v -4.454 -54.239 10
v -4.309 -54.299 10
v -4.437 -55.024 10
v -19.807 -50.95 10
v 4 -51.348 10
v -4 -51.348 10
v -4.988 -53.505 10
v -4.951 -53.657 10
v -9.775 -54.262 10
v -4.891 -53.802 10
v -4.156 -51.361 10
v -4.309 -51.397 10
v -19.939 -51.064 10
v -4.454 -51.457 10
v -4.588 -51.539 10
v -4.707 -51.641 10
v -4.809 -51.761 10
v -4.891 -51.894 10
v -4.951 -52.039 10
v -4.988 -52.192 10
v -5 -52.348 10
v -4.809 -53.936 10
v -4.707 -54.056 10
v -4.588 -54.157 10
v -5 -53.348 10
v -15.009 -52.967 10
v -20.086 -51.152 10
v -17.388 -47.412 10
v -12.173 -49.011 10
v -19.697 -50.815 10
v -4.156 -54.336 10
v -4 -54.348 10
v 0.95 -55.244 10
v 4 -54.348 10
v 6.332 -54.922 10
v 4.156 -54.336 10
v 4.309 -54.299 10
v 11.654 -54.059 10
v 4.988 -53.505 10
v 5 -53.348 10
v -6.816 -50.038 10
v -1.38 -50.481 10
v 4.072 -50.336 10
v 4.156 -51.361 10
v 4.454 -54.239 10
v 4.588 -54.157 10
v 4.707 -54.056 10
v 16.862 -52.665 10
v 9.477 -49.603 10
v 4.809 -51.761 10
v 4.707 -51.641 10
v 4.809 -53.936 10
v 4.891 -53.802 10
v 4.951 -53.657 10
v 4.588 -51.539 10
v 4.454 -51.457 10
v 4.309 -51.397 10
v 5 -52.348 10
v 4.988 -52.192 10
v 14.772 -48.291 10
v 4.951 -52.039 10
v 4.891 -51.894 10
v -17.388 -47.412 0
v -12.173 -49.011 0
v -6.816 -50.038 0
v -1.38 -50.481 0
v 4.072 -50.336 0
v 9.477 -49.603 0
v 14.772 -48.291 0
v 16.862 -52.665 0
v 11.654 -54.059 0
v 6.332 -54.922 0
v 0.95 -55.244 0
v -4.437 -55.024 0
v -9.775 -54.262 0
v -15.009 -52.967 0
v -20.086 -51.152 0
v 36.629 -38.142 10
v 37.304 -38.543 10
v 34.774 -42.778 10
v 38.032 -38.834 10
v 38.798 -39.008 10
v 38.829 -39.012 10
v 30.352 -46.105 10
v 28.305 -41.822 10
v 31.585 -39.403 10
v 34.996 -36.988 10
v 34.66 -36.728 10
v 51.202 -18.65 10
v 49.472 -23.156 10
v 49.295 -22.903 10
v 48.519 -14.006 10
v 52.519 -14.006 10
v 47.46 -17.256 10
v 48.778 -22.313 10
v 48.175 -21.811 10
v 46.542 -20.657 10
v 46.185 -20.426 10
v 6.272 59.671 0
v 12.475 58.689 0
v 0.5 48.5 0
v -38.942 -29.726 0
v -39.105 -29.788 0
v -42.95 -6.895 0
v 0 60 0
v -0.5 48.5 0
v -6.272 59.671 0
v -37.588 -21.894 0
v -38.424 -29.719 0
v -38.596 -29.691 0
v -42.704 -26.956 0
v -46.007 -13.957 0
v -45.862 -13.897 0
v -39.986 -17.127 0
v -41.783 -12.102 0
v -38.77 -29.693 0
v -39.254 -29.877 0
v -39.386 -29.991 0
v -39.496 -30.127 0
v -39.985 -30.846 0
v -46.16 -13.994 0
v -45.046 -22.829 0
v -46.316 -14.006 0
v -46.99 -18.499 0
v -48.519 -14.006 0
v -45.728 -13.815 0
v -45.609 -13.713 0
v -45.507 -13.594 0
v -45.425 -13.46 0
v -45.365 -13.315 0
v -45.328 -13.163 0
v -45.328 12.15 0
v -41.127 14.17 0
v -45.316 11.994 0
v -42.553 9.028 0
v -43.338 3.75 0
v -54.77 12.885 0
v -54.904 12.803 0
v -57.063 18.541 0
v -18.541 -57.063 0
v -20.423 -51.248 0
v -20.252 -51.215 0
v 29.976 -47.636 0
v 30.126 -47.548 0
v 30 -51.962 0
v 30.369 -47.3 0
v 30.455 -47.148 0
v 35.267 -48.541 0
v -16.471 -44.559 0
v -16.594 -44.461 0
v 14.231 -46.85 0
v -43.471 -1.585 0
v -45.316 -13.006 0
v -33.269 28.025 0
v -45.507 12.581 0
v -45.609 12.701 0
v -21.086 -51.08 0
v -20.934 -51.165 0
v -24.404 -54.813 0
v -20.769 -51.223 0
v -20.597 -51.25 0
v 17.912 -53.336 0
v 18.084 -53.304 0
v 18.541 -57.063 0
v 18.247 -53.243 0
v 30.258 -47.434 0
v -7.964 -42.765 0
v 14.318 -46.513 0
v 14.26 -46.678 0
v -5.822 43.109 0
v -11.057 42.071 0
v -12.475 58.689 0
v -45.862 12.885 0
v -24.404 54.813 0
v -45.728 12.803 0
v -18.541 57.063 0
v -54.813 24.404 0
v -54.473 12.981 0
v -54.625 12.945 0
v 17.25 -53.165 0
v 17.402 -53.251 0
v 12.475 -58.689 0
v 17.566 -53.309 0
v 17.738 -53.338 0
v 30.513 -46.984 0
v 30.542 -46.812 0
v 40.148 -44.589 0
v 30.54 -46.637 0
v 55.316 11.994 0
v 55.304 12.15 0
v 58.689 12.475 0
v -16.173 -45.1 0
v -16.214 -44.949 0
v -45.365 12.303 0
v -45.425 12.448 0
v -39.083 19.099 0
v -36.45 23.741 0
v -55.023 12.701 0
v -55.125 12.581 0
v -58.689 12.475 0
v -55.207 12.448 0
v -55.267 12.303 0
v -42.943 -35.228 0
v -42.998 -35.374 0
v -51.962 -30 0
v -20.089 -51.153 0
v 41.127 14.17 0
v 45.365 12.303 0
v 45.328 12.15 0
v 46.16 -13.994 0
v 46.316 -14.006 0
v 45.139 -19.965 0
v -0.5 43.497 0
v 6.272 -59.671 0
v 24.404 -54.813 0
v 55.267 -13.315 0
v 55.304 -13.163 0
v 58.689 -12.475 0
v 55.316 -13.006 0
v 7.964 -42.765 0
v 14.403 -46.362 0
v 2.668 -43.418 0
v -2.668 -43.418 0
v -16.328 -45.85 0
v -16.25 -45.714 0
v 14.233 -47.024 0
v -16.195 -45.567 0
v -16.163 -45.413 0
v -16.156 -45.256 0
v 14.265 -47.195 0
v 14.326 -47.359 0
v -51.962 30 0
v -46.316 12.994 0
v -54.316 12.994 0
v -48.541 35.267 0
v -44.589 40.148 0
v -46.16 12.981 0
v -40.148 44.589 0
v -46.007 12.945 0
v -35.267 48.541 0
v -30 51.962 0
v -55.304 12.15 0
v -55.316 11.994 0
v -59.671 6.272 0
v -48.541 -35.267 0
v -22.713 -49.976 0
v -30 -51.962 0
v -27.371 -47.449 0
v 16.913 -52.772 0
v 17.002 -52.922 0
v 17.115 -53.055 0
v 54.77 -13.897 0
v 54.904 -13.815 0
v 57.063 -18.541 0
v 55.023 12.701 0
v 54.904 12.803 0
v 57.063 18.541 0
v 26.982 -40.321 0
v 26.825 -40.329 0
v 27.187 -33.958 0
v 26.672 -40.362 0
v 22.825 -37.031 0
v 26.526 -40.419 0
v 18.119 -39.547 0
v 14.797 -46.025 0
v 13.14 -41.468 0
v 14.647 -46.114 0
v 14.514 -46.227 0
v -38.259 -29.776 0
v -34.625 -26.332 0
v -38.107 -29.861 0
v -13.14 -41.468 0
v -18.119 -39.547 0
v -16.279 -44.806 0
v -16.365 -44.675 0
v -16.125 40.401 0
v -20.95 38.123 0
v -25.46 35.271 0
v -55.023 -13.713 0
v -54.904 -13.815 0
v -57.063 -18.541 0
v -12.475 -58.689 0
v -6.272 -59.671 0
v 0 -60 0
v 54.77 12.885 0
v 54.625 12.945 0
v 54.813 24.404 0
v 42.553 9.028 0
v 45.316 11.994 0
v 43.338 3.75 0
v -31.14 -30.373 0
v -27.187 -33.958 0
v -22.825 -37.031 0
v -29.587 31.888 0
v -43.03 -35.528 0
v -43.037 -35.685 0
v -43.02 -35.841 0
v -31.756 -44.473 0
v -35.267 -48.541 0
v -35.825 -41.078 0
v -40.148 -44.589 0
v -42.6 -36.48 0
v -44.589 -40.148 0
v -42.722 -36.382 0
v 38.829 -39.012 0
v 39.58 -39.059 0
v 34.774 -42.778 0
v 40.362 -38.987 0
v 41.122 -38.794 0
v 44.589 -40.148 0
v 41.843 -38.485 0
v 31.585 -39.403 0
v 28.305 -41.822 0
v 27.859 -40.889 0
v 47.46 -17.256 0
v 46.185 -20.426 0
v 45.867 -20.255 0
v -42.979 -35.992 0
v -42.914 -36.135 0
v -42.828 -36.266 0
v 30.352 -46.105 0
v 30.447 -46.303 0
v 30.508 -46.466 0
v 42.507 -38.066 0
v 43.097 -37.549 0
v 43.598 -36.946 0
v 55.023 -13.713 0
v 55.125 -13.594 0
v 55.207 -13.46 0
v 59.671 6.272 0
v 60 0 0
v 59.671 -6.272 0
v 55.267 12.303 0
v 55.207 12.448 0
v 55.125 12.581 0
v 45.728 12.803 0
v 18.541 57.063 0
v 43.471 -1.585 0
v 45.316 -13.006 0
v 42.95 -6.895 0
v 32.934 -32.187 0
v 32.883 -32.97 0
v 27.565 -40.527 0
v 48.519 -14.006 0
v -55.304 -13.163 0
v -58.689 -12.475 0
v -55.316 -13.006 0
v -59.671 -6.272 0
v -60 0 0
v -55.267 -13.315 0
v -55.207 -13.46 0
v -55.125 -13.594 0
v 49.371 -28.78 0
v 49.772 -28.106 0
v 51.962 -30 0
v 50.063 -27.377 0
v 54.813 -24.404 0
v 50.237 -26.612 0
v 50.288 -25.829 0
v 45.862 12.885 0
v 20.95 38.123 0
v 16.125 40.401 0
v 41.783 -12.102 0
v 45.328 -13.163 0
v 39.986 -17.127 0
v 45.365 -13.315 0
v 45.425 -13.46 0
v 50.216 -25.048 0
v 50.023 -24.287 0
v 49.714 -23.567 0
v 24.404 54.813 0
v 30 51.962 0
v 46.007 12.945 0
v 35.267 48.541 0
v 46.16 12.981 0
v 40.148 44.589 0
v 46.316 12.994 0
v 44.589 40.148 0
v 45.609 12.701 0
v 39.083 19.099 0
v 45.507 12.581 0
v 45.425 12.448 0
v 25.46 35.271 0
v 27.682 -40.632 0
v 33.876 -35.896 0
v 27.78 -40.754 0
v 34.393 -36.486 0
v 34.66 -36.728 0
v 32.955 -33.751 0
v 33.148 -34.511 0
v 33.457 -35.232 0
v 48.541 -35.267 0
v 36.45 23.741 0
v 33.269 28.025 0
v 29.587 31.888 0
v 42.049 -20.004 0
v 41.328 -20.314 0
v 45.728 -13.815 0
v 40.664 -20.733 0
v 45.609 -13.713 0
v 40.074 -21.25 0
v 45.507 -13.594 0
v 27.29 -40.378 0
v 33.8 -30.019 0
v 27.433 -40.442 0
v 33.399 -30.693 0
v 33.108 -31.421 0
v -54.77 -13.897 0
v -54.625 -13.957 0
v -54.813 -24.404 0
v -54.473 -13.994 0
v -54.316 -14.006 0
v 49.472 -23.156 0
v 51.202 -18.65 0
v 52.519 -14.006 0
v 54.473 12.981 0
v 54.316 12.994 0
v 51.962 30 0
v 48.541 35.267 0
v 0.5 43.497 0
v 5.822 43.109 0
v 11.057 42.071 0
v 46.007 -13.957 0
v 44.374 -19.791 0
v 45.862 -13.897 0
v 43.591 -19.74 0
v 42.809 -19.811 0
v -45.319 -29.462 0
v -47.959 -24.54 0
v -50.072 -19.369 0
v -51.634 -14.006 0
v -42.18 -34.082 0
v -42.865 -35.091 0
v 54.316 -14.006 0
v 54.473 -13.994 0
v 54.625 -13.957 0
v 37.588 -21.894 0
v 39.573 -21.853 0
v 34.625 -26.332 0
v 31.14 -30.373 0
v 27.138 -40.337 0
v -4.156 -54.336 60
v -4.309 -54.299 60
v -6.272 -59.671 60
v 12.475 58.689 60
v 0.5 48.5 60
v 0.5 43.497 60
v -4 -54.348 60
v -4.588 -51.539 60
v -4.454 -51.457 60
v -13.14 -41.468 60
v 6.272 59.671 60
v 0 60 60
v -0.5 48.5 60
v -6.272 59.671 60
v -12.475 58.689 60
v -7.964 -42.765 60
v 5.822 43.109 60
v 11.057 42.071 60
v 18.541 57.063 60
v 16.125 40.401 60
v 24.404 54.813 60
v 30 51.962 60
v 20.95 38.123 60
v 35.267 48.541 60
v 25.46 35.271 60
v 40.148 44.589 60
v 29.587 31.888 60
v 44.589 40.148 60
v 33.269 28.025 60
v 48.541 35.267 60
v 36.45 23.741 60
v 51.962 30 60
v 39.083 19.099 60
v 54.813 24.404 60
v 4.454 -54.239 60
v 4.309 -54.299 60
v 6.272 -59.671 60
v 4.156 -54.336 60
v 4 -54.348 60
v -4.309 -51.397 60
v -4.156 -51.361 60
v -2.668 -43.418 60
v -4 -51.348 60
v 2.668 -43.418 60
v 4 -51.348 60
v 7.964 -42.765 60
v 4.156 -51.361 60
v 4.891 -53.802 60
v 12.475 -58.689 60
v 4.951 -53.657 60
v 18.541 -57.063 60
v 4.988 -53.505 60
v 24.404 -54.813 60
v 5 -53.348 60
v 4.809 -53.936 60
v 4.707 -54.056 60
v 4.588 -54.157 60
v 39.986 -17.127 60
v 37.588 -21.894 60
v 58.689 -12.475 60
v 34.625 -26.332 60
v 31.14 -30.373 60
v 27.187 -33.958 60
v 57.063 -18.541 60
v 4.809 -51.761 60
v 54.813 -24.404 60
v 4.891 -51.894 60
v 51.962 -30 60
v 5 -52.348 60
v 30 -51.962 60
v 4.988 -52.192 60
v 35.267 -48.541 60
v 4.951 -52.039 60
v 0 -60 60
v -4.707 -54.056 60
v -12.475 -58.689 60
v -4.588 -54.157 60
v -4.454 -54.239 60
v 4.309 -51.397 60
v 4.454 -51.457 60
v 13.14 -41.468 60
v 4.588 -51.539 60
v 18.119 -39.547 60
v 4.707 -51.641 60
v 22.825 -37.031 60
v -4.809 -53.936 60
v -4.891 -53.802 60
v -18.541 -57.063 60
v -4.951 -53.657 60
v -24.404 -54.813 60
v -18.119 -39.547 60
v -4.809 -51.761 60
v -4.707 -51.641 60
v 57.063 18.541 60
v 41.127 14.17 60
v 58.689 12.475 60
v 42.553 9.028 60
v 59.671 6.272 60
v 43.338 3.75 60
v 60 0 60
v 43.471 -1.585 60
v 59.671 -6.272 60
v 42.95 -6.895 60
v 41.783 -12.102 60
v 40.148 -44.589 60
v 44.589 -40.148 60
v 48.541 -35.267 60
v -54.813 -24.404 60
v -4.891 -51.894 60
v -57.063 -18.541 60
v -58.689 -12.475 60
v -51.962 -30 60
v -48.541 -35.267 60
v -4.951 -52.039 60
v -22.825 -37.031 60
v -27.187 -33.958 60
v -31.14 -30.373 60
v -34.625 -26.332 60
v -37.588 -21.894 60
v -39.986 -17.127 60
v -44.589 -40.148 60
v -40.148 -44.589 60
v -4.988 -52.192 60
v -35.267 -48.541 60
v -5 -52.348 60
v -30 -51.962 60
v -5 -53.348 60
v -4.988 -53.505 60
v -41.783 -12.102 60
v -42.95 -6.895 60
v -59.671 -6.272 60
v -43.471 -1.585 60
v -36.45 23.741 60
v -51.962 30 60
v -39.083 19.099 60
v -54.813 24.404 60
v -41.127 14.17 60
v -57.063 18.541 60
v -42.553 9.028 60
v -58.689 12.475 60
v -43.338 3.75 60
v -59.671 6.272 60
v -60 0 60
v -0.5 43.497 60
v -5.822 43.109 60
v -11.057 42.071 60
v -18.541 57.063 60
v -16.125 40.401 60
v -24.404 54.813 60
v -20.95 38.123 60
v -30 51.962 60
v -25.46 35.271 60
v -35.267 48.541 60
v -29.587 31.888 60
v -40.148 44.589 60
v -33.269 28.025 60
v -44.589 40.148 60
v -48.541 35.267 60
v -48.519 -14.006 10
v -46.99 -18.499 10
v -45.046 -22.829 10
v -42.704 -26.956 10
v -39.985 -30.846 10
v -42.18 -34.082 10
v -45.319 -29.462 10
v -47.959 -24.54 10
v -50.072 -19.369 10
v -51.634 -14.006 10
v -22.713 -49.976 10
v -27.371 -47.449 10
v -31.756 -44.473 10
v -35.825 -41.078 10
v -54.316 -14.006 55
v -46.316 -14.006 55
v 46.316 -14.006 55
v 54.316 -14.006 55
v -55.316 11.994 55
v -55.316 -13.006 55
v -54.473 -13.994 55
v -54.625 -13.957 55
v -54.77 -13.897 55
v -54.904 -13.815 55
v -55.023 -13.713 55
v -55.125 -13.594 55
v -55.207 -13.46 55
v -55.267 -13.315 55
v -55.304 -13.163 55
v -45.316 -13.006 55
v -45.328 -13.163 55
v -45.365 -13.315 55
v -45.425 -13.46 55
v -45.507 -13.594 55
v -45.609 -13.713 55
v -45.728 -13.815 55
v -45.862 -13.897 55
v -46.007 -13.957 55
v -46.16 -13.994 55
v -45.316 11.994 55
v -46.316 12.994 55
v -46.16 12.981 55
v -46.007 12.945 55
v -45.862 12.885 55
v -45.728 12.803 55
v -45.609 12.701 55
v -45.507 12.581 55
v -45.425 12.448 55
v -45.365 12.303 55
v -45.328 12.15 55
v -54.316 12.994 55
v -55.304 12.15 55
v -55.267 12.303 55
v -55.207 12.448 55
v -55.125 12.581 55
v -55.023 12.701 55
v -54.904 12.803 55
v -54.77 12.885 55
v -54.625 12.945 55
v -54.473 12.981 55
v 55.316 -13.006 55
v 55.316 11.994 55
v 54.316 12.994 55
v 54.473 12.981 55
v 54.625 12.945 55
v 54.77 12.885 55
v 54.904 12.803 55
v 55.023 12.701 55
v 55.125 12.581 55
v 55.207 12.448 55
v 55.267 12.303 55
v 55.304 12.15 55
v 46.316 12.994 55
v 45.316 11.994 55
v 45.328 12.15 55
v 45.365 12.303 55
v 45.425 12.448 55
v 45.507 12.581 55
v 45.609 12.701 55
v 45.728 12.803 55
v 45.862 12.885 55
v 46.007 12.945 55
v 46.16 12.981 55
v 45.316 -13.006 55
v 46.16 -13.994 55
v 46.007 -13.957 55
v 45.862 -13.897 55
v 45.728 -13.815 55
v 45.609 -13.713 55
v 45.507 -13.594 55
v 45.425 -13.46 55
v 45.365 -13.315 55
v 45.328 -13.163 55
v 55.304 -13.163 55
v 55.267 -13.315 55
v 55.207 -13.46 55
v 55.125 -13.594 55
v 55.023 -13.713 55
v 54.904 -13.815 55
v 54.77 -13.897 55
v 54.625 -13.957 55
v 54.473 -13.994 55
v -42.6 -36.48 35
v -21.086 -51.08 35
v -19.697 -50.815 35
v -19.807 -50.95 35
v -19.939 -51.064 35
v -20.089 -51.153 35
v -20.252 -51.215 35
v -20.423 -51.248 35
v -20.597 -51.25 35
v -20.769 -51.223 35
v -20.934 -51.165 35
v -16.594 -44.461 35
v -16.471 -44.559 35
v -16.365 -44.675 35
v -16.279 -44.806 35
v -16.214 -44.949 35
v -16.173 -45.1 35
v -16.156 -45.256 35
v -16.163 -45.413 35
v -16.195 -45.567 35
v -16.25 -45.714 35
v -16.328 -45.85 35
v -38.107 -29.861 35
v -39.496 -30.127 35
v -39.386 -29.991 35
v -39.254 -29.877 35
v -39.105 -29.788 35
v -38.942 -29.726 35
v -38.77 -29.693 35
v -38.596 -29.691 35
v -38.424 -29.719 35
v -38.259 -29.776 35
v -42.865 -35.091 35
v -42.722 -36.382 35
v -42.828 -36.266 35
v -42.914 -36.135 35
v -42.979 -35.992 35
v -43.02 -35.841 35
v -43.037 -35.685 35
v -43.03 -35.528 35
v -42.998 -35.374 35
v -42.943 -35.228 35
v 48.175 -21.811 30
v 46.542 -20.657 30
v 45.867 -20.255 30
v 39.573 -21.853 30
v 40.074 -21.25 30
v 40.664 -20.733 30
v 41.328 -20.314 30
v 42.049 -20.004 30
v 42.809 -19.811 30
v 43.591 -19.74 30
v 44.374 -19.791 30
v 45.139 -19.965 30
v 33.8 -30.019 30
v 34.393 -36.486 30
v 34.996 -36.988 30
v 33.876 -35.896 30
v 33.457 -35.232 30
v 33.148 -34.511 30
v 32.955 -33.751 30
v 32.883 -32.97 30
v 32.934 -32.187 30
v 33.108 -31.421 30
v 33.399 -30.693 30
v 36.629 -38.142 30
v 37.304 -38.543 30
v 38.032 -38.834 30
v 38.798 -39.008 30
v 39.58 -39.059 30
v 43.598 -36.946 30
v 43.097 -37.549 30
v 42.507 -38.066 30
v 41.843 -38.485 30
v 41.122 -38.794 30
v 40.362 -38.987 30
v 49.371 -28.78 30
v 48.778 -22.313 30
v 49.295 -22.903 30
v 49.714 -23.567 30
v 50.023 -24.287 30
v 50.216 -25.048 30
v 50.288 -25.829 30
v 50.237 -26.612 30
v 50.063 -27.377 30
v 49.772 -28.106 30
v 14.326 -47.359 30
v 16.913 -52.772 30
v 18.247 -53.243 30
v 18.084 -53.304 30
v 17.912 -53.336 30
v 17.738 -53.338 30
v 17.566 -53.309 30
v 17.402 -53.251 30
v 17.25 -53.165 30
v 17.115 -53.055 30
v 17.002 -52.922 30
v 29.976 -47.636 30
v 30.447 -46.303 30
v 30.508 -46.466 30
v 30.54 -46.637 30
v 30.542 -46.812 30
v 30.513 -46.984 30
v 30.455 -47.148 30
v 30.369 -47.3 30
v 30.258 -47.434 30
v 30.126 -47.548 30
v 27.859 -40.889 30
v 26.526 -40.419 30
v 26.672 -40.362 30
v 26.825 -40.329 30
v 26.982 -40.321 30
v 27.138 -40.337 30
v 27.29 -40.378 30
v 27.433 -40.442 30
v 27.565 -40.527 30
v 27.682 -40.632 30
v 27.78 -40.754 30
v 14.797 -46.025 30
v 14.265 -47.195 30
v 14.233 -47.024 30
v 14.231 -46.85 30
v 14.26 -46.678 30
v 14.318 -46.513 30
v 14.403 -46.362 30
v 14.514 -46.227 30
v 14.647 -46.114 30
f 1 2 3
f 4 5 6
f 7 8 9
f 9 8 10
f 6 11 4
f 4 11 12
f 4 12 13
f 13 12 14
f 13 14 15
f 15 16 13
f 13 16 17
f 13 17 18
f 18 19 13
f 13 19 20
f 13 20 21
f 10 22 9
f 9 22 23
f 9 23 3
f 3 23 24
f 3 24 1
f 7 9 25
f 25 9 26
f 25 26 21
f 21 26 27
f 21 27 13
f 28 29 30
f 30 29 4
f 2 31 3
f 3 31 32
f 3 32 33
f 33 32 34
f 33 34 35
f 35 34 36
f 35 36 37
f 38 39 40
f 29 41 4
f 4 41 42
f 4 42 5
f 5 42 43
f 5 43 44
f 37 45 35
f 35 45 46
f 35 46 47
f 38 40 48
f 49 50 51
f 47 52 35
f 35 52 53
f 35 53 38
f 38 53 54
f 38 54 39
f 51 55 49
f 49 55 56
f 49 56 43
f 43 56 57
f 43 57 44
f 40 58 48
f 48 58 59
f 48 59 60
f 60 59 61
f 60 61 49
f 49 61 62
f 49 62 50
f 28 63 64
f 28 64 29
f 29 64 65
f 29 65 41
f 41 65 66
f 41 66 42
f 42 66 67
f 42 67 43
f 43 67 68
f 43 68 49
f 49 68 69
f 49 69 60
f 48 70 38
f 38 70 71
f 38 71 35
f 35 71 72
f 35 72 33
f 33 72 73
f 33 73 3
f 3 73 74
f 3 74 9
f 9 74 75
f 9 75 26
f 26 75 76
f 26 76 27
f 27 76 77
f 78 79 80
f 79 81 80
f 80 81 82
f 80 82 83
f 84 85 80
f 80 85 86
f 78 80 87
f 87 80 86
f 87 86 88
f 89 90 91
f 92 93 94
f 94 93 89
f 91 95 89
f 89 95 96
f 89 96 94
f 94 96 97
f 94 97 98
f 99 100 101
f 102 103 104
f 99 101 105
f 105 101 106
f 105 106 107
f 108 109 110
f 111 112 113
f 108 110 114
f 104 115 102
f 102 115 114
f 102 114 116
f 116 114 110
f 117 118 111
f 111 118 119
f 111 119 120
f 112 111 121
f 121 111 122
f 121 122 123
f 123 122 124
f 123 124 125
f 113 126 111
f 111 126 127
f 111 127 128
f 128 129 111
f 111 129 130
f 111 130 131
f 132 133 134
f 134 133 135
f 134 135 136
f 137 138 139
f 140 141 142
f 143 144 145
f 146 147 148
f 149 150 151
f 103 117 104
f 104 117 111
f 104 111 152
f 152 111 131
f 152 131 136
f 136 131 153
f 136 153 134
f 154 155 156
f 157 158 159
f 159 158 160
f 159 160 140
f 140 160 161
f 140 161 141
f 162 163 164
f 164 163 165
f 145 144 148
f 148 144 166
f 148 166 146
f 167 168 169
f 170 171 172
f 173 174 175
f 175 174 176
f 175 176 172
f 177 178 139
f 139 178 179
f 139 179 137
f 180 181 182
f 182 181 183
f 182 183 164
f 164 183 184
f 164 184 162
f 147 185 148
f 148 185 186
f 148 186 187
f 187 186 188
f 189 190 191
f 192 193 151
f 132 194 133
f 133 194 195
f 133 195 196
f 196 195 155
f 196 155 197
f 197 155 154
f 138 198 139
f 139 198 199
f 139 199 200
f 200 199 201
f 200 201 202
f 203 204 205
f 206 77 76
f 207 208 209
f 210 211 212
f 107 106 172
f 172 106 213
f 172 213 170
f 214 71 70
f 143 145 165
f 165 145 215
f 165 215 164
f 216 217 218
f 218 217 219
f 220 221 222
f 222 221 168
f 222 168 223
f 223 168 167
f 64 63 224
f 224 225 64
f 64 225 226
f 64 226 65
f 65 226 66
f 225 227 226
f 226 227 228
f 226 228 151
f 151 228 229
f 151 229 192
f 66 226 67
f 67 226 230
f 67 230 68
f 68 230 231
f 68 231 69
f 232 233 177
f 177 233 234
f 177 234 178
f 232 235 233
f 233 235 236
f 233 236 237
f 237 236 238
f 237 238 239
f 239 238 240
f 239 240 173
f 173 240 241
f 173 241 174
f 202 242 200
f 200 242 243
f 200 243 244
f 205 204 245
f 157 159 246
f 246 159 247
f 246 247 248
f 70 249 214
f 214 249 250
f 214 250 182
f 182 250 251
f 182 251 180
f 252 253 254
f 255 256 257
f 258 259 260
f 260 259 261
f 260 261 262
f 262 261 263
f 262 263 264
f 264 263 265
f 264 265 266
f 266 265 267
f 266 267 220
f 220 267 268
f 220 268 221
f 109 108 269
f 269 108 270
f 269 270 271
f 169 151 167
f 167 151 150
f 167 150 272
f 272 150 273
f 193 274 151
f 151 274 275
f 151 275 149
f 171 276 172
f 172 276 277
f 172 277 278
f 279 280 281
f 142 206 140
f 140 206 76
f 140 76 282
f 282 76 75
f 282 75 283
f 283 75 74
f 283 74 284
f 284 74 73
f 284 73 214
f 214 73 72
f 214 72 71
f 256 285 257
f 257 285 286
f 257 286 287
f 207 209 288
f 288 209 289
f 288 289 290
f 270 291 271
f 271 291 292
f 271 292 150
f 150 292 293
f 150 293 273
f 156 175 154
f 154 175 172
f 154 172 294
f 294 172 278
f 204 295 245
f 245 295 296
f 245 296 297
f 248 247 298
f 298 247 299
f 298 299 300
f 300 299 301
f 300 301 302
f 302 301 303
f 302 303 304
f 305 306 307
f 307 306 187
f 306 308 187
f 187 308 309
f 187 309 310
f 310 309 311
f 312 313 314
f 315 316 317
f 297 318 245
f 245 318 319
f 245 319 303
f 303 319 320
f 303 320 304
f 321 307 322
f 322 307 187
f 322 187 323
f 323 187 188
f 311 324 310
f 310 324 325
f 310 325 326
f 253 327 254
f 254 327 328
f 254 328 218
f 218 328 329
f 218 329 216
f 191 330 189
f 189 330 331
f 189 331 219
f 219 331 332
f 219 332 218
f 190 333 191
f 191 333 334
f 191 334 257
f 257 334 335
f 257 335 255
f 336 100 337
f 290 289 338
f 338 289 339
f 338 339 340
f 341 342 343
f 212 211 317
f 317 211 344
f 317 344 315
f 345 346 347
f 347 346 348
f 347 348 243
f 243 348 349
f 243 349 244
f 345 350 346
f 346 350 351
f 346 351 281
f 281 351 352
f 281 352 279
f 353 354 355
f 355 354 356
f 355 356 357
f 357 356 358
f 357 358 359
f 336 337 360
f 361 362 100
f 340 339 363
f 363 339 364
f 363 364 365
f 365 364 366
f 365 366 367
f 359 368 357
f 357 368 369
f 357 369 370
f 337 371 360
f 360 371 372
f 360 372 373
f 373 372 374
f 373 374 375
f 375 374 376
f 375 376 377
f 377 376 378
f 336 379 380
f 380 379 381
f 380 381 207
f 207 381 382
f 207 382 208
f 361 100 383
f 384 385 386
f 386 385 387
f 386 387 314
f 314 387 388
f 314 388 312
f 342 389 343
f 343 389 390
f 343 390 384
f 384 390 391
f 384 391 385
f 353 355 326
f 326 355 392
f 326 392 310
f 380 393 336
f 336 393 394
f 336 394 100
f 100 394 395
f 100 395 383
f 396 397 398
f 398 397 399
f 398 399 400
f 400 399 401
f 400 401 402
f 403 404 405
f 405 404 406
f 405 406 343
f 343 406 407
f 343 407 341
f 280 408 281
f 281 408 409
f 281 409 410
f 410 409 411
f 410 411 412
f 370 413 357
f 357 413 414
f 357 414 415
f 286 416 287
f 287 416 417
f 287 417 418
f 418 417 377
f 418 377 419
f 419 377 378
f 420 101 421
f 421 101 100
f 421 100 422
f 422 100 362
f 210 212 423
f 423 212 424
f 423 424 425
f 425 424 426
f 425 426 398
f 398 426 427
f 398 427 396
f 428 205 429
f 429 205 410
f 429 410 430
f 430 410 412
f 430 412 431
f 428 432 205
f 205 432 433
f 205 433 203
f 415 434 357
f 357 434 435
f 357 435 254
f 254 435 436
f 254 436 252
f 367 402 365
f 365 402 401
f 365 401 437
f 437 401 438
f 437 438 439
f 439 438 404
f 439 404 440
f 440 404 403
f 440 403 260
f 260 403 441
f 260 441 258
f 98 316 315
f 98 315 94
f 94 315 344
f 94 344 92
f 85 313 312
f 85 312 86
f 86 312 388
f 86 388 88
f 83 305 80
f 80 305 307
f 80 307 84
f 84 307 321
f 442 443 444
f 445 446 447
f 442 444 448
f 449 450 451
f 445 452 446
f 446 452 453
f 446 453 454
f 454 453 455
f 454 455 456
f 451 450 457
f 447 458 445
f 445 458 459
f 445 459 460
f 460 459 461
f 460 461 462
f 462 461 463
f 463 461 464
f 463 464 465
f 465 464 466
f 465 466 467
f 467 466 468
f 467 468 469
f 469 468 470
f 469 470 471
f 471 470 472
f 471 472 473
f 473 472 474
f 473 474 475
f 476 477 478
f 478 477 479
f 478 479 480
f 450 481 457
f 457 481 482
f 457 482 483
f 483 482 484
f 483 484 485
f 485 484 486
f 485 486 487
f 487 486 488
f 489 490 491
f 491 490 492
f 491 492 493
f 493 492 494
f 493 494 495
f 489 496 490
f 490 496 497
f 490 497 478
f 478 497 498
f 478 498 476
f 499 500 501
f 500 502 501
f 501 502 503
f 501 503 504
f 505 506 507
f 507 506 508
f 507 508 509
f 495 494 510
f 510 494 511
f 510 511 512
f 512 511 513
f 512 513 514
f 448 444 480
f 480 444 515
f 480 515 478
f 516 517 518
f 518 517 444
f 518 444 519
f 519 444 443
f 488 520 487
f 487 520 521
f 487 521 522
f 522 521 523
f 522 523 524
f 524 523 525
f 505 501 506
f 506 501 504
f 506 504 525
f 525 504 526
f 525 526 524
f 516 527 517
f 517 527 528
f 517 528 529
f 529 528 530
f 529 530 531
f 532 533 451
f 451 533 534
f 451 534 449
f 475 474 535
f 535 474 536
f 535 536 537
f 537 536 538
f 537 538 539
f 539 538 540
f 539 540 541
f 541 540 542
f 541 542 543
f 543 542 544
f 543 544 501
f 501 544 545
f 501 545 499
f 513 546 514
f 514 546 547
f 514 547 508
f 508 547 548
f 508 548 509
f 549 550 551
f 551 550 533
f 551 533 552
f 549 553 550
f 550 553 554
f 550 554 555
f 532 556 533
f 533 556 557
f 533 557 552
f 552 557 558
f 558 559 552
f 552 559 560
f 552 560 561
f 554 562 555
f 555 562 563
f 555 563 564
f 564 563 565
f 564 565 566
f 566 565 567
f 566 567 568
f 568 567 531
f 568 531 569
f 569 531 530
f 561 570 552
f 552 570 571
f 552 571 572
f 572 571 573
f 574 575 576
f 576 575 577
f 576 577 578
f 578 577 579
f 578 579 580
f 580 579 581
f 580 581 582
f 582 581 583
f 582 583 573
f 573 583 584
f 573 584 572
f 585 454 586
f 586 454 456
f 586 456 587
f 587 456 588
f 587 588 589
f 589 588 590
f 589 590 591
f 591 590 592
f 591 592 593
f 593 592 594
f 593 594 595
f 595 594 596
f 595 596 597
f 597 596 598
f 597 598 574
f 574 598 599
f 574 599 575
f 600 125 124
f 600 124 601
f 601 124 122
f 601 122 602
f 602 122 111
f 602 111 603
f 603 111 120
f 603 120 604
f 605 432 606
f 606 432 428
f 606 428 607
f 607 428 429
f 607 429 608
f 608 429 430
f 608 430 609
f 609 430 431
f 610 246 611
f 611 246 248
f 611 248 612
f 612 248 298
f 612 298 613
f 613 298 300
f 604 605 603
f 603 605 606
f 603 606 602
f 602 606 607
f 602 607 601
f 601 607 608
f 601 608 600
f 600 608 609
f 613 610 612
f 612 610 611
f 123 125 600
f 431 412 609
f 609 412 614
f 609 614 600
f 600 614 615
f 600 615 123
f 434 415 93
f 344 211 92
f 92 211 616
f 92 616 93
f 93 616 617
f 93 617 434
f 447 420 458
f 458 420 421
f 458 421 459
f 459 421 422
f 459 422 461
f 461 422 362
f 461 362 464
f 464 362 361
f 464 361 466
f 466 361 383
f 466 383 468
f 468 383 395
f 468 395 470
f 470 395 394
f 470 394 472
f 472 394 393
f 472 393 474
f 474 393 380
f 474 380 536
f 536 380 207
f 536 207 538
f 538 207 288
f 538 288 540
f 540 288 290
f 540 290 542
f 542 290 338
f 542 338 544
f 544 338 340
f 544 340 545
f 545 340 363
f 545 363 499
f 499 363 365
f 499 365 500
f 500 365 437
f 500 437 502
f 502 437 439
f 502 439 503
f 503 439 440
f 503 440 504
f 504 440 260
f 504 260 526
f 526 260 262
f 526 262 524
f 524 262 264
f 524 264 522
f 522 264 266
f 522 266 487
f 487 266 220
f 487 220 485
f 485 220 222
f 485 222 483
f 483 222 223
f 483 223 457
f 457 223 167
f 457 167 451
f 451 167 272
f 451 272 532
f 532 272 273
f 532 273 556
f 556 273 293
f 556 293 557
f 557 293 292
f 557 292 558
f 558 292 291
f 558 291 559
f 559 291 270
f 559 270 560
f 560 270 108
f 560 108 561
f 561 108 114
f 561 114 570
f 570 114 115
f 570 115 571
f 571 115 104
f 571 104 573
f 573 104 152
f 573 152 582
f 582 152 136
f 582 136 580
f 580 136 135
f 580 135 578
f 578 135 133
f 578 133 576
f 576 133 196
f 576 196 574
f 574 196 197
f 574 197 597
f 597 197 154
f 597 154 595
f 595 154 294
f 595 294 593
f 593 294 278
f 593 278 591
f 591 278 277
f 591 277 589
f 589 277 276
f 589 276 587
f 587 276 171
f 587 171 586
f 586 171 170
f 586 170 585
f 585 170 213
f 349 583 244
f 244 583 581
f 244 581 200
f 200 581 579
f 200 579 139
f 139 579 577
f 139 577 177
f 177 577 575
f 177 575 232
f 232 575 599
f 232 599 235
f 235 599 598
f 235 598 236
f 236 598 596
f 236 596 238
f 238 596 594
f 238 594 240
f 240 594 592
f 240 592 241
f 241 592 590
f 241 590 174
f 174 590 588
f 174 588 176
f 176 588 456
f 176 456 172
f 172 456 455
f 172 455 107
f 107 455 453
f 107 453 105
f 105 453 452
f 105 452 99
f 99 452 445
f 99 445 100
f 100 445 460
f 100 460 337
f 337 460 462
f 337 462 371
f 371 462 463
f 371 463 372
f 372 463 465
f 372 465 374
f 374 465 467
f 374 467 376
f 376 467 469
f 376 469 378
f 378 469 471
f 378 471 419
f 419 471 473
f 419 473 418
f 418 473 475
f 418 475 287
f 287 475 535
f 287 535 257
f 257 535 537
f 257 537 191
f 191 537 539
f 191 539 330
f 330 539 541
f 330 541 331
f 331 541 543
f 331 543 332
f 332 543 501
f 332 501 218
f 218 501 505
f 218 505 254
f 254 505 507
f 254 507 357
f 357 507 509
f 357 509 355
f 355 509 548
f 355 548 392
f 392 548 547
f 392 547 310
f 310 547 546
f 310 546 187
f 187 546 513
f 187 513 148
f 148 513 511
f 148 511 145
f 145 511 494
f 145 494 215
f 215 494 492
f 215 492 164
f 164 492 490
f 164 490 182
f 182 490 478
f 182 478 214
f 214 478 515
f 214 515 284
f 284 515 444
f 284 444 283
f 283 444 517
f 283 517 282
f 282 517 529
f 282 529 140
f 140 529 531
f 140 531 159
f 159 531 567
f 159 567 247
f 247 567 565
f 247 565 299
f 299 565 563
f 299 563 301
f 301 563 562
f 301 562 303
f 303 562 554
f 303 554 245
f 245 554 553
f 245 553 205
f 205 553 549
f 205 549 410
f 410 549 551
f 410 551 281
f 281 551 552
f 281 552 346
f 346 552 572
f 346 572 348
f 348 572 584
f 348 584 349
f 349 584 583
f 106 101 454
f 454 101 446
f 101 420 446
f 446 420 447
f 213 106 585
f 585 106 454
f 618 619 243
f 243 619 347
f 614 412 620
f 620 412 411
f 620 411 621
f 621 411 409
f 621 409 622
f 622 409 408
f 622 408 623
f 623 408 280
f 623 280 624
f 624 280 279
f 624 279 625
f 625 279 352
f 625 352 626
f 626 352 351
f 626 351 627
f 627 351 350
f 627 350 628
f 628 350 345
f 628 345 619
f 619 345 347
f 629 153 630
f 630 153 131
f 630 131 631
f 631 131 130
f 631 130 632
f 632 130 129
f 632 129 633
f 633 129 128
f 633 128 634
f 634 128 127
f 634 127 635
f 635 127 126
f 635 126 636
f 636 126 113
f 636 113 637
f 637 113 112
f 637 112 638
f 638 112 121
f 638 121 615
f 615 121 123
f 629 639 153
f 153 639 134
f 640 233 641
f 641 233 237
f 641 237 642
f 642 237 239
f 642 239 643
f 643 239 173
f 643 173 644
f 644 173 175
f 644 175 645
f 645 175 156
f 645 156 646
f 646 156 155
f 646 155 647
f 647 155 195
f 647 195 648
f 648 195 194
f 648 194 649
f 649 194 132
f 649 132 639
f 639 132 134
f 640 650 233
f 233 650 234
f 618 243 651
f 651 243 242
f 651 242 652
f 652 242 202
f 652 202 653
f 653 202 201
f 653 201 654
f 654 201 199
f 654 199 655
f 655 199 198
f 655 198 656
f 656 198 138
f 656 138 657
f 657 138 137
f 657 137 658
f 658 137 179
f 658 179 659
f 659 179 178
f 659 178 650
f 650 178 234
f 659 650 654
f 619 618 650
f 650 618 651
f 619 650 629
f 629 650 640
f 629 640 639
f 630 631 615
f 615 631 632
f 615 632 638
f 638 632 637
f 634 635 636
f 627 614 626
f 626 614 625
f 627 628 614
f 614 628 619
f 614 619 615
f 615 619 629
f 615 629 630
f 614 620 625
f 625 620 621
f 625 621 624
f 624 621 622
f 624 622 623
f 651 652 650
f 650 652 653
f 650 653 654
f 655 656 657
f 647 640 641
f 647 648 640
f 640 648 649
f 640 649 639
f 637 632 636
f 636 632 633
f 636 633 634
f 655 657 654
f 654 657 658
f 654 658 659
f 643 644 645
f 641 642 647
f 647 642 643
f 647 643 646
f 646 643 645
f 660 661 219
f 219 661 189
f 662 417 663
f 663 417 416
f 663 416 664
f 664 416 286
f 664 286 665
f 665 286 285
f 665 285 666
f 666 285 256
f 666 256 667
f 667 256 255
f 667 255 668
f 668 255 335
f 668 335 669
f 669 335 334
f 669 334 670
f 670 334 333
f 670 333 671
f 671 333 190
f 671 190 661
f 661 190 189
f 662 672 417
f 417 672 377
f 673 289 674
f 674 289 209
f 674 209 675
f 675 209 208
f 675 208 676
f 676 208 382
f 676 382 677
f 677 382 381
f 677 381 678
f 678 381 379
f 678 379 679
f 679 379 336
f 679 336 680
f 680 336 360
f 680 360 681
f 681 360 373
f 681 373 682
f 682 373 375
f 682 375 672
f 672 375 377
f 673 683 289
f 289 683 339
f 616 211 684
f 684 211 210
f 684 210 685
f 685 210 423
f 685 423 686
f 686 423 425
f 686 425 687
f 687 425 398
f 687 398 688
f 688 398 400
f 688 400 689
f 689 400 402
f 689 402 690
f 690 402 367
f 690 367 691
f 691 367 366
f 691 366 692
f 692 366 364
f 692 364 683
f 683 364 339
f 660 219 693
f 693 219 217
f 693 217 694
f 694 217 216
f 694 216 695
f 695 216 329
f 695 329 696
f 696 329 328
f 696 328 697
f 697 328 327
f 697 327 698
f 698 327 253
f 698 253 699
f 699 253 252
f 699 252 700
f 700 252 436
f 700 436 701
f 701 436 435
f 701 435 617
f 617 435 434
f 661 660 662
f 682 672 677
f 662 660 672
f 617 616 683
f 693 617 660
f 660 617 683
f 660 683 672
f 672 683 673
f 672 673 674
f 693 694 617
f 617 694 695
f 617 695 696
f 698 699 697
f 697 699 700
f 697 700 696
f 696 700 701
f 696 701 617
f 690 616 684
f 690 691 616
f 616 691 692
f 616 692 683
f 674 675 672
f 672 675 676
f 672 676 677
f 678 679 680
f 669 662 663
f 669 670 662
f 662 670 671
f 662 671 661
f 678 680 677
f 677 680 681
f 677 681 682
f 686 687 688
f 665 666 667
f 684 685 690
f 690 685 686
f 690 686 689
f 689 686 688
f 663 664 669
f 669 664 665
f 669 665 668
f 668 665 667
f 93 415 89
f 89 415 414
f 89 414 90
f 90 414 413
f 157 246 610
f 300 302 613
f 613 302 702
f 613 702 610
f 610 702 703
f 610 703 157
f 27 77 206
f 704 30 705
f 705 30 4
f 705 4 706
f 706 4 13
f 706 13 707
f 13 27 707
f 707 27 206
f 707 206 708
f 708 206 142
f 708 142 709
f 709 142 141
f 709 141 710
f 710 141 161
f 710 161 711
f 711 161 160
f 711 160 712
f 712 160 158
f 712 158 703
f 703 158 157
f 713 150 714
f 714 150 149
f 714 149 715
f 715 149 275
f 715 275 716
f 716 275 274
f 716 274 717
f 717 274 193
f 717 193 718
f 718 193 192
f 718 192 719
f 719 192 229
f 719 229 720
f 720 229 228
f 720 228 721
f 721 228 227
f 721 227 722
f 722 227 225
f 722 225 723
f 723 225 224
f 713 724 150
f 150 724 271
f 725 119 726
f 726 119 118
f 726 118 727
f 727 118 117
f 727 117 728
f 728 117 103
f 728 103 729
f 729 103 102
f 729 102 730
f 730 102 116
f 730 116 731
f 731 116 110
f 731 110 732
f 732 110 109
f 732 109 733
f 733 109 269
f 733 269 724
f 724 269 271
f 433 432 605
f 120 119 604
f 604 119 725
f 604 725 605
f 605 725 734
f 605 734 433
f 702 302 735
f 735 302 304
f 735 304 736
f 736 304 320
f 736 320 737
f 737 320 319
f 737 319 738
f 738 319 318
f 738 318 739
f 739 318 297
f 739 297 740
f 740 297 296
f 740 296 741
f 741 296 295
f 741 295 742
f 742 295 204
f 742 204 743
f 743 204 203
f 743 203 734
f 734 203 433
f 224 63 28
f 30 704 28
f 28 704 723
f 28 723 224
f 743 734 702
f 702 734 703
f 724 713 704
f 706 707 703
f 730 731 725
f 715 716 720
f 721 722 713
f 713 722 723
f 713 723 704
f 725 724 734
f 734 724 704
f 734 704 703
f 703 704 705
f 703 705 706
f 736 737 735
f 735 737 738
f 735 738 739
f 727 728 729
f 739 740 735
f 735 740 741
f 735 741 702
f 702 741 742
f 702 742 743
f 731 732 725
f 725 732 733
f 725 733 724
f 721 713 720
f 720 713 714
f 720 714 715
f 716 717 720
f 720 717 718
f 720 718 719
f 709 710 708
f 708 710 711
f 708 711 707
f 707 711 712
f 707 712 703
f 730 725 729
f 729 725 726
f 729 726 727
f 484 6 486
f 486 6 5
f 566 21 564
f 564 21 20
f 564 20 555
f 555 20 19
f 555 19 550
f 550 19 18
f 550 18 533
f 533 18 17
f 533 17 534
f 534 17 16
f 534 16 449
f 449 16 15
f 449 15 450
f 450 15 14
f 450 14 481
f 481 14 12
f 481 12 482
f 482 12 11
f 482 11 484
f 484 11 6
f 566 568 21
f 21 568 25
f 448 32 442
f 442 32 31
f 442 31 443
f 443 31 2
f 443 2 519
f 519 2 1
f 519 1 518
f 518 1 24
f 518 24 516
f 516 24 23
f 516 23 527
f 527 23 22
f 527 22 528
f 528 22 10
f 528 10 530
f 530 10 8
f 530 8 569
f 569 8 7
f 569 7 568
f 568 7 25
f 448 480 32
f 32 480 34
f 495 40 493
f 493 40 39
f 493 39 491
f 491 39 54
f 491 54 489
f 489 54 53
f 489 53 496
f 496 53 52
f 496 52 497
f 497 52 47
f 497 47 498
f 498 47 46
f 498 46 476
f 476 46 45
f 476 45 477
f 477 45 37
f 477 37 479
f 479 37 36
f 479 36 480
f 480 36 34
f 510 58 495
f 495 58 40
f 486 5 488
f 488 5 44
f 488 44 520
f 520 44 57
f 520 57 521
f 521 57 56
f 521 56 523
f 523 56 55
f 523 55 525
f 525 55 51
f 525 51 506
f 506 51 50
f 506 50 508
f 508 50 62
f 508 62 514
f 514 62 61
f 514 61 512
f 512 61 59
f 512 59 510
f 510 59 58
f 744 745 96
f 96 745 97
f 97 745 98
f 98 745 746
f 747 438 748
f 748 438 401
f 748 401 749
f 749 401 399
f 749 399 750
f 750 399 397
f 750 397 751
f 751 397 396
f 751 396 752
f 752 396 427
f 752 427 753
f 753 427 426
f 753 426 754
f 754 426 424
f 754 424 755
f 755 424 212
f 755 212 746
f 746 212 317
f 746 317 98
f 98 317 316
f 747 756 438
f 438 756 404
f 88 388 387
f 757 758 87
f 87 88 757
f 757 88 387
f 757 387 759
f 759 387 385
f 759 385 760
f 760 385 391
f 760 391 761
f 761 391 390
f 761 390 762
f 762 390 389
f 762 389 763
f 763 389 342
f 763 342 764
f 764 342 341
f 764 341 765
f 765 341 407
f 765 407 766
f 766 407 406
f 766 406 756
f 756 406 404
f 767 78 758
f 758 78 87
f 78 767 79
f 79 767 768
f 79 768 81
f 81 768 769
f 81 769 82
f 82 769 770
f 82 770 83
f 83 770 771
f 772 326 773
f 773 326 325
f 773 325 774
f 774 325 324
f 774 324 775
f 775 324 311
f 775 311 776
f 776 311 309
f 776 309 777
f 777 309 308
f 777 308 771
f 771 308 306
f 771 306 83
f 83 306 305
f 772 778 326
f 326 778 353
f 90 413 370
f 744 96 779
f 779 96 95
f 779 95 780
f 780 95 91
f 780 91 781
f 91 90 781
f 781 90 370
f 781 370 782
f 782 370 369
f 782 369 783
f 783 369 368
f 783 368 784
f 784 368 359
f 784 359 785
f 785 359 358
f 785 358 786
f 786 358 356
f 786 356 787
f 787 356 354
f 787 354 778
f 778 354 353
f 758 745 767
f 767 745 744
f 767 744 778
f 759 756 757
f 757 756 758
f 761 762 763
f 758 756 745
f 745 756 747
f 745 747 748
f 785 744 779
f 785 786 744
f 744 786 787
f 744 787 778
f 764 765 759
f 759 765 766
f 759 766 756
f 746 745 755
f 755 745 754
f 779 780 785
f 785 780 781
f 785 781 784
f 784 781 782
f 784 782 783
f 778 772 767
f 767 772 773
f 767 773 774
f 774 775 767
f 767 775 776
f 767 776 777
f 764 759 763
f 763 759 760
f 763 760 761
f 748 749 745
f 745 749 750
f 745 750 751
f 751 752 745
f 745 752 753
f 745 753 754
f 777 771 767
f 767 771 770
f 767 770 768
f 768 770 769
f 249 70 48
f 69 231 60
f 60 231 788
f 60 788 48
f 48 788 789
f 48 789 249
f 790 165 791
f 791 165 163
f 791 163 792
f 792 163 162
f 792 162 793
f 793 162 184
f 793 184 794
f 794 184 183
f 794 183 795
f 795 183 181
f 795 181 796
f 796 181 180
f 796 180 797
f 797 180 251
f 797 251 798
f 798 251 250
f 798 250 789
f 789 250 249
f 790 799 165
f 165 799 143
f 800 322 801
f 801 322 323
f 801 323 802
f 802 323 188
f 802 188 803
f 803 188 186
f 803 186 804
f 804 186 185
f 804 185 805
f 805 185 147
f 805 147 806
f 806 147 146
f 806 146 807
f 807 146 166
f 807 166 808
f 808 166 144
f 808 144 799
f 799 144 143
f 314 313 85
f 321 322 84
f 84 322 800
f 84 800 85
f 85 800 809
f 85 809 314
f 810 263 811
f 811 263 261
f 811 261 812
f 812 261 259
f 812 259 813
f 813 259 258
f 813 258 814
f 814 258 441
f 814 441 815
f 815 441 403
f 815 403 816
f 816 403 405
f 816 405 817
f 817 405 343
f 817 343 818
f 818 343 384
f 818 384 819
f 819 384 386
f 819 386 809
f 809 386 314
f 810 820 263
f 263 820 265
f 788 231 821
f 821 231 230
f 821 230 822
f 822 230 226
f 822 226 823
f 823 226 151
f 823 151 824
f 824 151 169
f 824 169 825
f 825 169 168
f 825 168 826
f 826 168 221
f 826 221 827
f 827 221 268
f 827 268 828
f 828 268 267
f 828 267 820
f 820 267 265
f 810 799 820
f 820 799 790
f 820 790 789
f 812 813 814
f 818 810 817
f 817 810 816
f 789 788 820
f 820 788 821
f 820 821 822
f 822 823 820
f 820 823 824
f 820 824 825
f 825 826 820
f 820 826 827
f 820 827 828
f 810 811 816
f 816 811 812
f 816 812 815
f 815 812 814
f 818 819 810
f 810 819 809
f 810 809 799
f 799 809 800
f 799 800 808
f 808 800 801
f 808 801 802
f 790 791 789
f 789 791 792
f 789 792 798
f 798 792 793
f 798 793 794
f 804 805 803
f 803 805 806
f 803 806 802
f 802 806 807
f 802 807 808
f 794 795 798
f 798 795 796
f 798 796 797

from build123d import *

# Parameters (mm, degrees)
SKETCH1_R          = 60
SKETCH1_R_2        = 43.5
EXTRUSION1_DEPTH   = 60
EXTRUSION3_START   = -60
EXTRUSION3_DEPTH   = 60
CUT_EXTRUDE2_DEPTH = 55
CUT_EXTRUDE3_DEPTH = 10
CUT_EXTRUDE4_DEPTH = 35
CUT_EXTRUDE5_DEPTH = 104.923048454
CUT_EXTRUDE6_DEPTH = 30
CUT_EXTRUDE7_DEPTH = 30


with BuildPart() as part:
    # Sketch1 → Extrusion1 (new body)
    with BuildSketch(Plane.XY):
        Circle(SKETCH1_R)
        Circle(SKETCH1_R_2, mode=Mode.SUBTRACT)
    extrude(amount=EXTRUSION1_DEPTH)

    # Sketch3 → Extrusion3 (cut)
    with BuildSketch(Plane.XY.offset(60).offset(EXTRUSION3_START)):
        with BuildLine():
            Line((-0.5, 48.5), (-0.5, 43.497126342))
            ThreePointArc((-0.5, 43.497126342), (0, 43.5), (0.5, 43.497126342))
            Line((0.5, 43.497126342), (0.5, 48.5))
            Line((0.5, 48.5), (-0.5, 48.5))
        make_face()
    extrude(amount=EXTRUSION3_DEPTH, mode=Mode.SUBTRACT)

    # Sketch4 → Cut-Extrude2 (cut)
    with BuildSketch(Plane(origin=(0, 0, 0), x_dir=(-1, 0, 0), z_dir=(0, 0, -1))):
        with BuildLine():
            ThreePointArc((-50.316139758, -0.506318633), (-49.782828126, -7.323954021), (-48.330045697, -14.006318633))
            Line((-48.330045697, -14.006318633), (-46.316139758, -14.006318633))
            ThreePointArc((-46.316139758, -14.006318633), (-45.609032977, -13.713425414), (-45.316139758, -13.006318633))
            Line((-45.316139758, -13.006318633), (-45.316139758, 11.993681367))
            ThreePointArc((-45.316139758, 11.993681367), (-45.609032977, 12.700788148), (-46.316139758, 12.993681367))
            Line((-46.316139758, 12.993681367), (-54.316139758, 12.993681367))
            ThreePointArc((-54.316139758, 12.993681367), (-55.023246539, 12.700788148), (-55.316139758, 11.993681367))
            Line((-55.316139758, 11.993681367), (-55.316139758, -0.506318633))
            Line((-55.316139758, -0.506318633), (-50.316139758, -0.506318633))
        make_face()
        with BuildLine():
            Line((-54.316139758, -14.006318633), (-48.330045697, -14.006318633))
            ThreePointArc((-48.330045697, -14.006318633), (-49.782828126, -7.323954021), (-50.316139758, -0.506318633))
            Line((-50.316139758, -0.506318633), (-55.316139758, -0.506318633))
            Line((-55.316139758, -0.506318633), (-55.316139758, -13.006318633))
            ThreePointArc((-55.316139758, -13.006318633), (-55.023246539, -13.713425414), (-54.316139758, -14.006318633))
        make_face()
        with BuildLine():
            Line((55.316139758, 0), (50.318687172, 0))
            ThreePointArc((50.318687172, 0), (49.819046203, -7.07339481), (48.330045697, -14.006318633))
            Line((48.330045697, -14.006318633), (54.316139758, -14.006318633))
            ThreePointArc((54.316139758, -14.006318633), (55.023246539, -13.713425414), (55.316139758, -13.006318633))
            Line((55.316139758, -13.006318633), (55.316139758, 0))
        make_face()
        with BuildLine():
            ThreePointArc((48.330045697, -14.006318633), (49.819046203, -7.07339481), (50.318687172, 0))
            Line((50.318687172, 0), (55.316139758, 0))
            Line((55.316139758, 0), (55.316139758, 11.993681367))
            ThreePointArc((55.316139758, 11.993681367), (55.023246539, 12.700788148), (54.316139758, 12.993681367))
            Line((54.316139758, 12.993681367), (46.316139758, 12.993681367))
            ThreePointArc((46.316139758, 12.993681367), (45.609032977, 12.700788148), (45.316139758, 11.993681367))
            Line((45.316139758, 11.993681367), (45.316139758, -13.006318633))
            ThreePointArc((45.316139758, -13.006318633), (45.609032977, -13.713425414), (46.316139758, -14.006318633))
            Line((46.316139758, -14.006318633), (48.330045697, -14.006318633))
        make_face()
    extrude(amount=-CUT_EXTRUDE2_DEPTH, mode=Mode.SUBTRACT)

    # Sketch5 → Cut-Extrude3 (cut)
    with BuildSketch(Plane(origin=(0, 0, 0), x_dir=(-1, 0, 0), z_dir=(0, 0, -1))):
        with BuildLine():
            Line((-52.51879057, -14.006318633), (-48.51879057, -14.006318633))
            ThreePointArc((-48.51879057, -14.006318633), (0, -50.5), (48.51879057, -14.006318633))
            Line((48.51879057, -14.006318633), (51.634029848, -14.006318633))
            ThreePointArc((51.634029848, -14.006318633), (-0.442380361, -55.246730559), (-52.51879057, -14.006318633))
        make_face()
    extrude(amount=-CUT_EXTRUDE3_DEPTH, mode=Mode.SUBTRACT)

    # Sketch7 → Cut-Extrude4 (cut)
    with BuildSketch(Plane(origin=(0, 0, 0), x_dir=(-1, 0, 0), z_dir=(0, 0, -1))):
        with BuildLine():
            Line((21.085956356, -51.080456264), (42.59953536, -36.48025358))
            ThreePointArc((42.59953536, -36.48025358), (43.020154485, -35.840827283), (42.865434449, -35.091261977))
            Line((42.865434449, -35.091261977), (39.496156907, -30.126589899))
            ThreePointArc((39.496156907, -30.126589899), (38.856730609, -29.705970774), (38.107165303, -29.860690809))
            Line((38.107165303, -29.860690809), (16.593586299, -44.460893494))
            ThreePointArc((16.593586299, -44.460893494), (16.172967174, -45.100319791), (16.32768721, -45.849885097))
            Line((16.32768721, -45.849885097), (19.696964752, -50.814557175))
            ThreePointArc((19.696964752, -50.814557175), (20.33639105, -51.2351763), (21.085956356, -51.080456264))
        make_face()
    extrude(amount=-CUT_EXTRUDE4_DEPTH, mode=Mode.SUBTRACT)

    # Sketch8 → Cut-Extrude5 (cut, through all)
    with BuildSketch(Plane(origin=(0, 0, 0), x_dir=(-1, 0, 0), z_dir=(0, 0, -1))):
        with BuildLine():
            Line((0, -54.348403173), (0, -51.348403173))
            Line((0, -51.348403173), (-4, -51.348403173))
            ThreePointArc((-4, -51.348403173), (-4.707106781, -51.641296392), (-5, -52.348403173))
            Line((-5, -52.348403173), (-5, -53.348403173))
            ThreePointArc((-5, -53.348403173), (-4.707106781, -54.055509954), (-4, -54.348403173))
            Line((-4, -54.348403173), (0, -54.348403173))
        make_face()
        with BuildLine():
            Line((4, -51.348403173), (0, -51.348403173))
            Line((0, -51.348403173), (0, -54.348403173))
            Line((0, -54.348403173), (4, -54.348403173))
            ThreePointArc((4, -54.348403173), (4.707106781, -54.055509954), (5, -53.348403173))
            Line((5, -53.348403173), (5, -52.348403173))
            ThreePointArc((5, -52.348403173), (4.707106781, -51.641296392), (4, -51.348403173))
        make_face()
    extrude(amount=-CUT_EXTRUDE5_DEPTH, mode=Mode.SUBTRACT)

    # Sketch9 → Cut-Extrude6 (cut)
    with BuildSketch(Plane(origin=(0, 0, 0), x_dir=(-1, 0, 0), z_dir=(0, 0, -1))):
        with BuildLine():
            Line((-46.541704455, -20.656628598), (-48.174808597, -21.811172171))
            ThreePointArc((-48.174808597, -21.811172171), (-50.216361173, -25.047948966), (-49.371210022, -28.780291457))
            Line((-49.371210022, -28.780291457), (-43.598492159, -36.945812168))
            ThreePointArc((-43.598492159, -36.945812168), (-40.361715364, -38.987364744), (-36.629372873, -38.142213593))
            Line((-36.629372873, -38.142213593), (-34.996268731, -36.98767002))
            ThreePointArc((-34.996268731, -36.98767002), (-32.954716155, -33.750893225), (-33.799867306, -30.018550734))
            Line((-33.799867306, -30.018550734), (-39.572585168, -21.853030023))
            ThreePointArc((-39.572585168, -21.853030023), (-42.809361964, -19.811477447), (-46.541704455, -20.656628598))
        make_face()
    extrude(amount=-CUT_EXTRUDE6_DEPTH, mode=Mode.SUBTRACT)

    # Sketch10 → Cut-Extrude7 (cut)
    with BuildSketch(Plane(origin=(0, 0, 0), x_dir=(-1, 0, 0), z_dir=(0, 0, -1))):
        with BuildLine():
            Line((-16.862196749, -52.664700174), (-15.619636194, -50.065338059))
            Line((-15.619636194, -50.065338059), (-29.152890755, -43.596101551))
            Line((-29.152890755, -43.596101551), (-30.352191828, -46.104967426))
            ThreePointArc((-30.352191828, -46.104967426), (-23.838237424, -49.859970652), (-16.862196749, -52.664700174))
        make_face()
        with BuildLine():
            Line((-16.913483495, -52.771988971), (-16.862196749, -52.664700174))
            ThreePointArc((-16.862196749, -52.664700174), (-23.838237424, -49.859970652), (-30.352191828, -46.104967426))
            Line((-30.352191828, -46.104967426), (-30.446738056, -46.302752463))
            ThreePointArc((-30.446738056, -46.302752463), (-30.487447557, -47.067035901), (-29.975803519, -47.636251867))
            Line((-29.975803519, -47.636251867), (-18.2469829, -53.242923508))
            ThreePointArc((-18.2469829, -53.242923508), (-17.482699462, -53.283633009), (-16.913483495, -52.771988971))
        make_face()
        with BuildLine():
            ThreePointArc((-28.304856483, -41.822064744), (-21.77976291, -45.561957021), (-14.771601922, -48.291301252))
            Line((-14.771601922, -48.291301252), (-14.325788892, -47.358687147))
            ThreePointArc((-14.325788892, -47.358687147), (-14.285079391, -46.594403708), (-14.796723429, -46.025187742))
            Line((-14.796723429, -46.025187742), (-26.525544048, -40.418516102))
            ThreePointArc((-26.525544048, -40.418516102), (-27.289827487, -40.377806601), (-27.859043453, -40.889450639))
            Line((-27.859043453, -40.889450639), (-28.304856483, -41.822064744))
        make_face()
        with BuildLine():
            Line((-29.152890755, -43.596101551), (-15.619636194, -50.065338059))
            Line((-15.619636194, -50.065338059), (-14.771601922, -48.291301252))
            ThreePointArc((-14.771601922, -48.291301252), (-21.77976291, -45.561957021), (-28.304856483, -41.822064744))
            Line((-28.304856483, -41.822064744), (-29.152890755, -43.596101551))
        make_face()
    extrude(amount=-CUT_EXTRUDE7_DEPTH, mode=Mode.SUBTRACT)


solid = part.part
